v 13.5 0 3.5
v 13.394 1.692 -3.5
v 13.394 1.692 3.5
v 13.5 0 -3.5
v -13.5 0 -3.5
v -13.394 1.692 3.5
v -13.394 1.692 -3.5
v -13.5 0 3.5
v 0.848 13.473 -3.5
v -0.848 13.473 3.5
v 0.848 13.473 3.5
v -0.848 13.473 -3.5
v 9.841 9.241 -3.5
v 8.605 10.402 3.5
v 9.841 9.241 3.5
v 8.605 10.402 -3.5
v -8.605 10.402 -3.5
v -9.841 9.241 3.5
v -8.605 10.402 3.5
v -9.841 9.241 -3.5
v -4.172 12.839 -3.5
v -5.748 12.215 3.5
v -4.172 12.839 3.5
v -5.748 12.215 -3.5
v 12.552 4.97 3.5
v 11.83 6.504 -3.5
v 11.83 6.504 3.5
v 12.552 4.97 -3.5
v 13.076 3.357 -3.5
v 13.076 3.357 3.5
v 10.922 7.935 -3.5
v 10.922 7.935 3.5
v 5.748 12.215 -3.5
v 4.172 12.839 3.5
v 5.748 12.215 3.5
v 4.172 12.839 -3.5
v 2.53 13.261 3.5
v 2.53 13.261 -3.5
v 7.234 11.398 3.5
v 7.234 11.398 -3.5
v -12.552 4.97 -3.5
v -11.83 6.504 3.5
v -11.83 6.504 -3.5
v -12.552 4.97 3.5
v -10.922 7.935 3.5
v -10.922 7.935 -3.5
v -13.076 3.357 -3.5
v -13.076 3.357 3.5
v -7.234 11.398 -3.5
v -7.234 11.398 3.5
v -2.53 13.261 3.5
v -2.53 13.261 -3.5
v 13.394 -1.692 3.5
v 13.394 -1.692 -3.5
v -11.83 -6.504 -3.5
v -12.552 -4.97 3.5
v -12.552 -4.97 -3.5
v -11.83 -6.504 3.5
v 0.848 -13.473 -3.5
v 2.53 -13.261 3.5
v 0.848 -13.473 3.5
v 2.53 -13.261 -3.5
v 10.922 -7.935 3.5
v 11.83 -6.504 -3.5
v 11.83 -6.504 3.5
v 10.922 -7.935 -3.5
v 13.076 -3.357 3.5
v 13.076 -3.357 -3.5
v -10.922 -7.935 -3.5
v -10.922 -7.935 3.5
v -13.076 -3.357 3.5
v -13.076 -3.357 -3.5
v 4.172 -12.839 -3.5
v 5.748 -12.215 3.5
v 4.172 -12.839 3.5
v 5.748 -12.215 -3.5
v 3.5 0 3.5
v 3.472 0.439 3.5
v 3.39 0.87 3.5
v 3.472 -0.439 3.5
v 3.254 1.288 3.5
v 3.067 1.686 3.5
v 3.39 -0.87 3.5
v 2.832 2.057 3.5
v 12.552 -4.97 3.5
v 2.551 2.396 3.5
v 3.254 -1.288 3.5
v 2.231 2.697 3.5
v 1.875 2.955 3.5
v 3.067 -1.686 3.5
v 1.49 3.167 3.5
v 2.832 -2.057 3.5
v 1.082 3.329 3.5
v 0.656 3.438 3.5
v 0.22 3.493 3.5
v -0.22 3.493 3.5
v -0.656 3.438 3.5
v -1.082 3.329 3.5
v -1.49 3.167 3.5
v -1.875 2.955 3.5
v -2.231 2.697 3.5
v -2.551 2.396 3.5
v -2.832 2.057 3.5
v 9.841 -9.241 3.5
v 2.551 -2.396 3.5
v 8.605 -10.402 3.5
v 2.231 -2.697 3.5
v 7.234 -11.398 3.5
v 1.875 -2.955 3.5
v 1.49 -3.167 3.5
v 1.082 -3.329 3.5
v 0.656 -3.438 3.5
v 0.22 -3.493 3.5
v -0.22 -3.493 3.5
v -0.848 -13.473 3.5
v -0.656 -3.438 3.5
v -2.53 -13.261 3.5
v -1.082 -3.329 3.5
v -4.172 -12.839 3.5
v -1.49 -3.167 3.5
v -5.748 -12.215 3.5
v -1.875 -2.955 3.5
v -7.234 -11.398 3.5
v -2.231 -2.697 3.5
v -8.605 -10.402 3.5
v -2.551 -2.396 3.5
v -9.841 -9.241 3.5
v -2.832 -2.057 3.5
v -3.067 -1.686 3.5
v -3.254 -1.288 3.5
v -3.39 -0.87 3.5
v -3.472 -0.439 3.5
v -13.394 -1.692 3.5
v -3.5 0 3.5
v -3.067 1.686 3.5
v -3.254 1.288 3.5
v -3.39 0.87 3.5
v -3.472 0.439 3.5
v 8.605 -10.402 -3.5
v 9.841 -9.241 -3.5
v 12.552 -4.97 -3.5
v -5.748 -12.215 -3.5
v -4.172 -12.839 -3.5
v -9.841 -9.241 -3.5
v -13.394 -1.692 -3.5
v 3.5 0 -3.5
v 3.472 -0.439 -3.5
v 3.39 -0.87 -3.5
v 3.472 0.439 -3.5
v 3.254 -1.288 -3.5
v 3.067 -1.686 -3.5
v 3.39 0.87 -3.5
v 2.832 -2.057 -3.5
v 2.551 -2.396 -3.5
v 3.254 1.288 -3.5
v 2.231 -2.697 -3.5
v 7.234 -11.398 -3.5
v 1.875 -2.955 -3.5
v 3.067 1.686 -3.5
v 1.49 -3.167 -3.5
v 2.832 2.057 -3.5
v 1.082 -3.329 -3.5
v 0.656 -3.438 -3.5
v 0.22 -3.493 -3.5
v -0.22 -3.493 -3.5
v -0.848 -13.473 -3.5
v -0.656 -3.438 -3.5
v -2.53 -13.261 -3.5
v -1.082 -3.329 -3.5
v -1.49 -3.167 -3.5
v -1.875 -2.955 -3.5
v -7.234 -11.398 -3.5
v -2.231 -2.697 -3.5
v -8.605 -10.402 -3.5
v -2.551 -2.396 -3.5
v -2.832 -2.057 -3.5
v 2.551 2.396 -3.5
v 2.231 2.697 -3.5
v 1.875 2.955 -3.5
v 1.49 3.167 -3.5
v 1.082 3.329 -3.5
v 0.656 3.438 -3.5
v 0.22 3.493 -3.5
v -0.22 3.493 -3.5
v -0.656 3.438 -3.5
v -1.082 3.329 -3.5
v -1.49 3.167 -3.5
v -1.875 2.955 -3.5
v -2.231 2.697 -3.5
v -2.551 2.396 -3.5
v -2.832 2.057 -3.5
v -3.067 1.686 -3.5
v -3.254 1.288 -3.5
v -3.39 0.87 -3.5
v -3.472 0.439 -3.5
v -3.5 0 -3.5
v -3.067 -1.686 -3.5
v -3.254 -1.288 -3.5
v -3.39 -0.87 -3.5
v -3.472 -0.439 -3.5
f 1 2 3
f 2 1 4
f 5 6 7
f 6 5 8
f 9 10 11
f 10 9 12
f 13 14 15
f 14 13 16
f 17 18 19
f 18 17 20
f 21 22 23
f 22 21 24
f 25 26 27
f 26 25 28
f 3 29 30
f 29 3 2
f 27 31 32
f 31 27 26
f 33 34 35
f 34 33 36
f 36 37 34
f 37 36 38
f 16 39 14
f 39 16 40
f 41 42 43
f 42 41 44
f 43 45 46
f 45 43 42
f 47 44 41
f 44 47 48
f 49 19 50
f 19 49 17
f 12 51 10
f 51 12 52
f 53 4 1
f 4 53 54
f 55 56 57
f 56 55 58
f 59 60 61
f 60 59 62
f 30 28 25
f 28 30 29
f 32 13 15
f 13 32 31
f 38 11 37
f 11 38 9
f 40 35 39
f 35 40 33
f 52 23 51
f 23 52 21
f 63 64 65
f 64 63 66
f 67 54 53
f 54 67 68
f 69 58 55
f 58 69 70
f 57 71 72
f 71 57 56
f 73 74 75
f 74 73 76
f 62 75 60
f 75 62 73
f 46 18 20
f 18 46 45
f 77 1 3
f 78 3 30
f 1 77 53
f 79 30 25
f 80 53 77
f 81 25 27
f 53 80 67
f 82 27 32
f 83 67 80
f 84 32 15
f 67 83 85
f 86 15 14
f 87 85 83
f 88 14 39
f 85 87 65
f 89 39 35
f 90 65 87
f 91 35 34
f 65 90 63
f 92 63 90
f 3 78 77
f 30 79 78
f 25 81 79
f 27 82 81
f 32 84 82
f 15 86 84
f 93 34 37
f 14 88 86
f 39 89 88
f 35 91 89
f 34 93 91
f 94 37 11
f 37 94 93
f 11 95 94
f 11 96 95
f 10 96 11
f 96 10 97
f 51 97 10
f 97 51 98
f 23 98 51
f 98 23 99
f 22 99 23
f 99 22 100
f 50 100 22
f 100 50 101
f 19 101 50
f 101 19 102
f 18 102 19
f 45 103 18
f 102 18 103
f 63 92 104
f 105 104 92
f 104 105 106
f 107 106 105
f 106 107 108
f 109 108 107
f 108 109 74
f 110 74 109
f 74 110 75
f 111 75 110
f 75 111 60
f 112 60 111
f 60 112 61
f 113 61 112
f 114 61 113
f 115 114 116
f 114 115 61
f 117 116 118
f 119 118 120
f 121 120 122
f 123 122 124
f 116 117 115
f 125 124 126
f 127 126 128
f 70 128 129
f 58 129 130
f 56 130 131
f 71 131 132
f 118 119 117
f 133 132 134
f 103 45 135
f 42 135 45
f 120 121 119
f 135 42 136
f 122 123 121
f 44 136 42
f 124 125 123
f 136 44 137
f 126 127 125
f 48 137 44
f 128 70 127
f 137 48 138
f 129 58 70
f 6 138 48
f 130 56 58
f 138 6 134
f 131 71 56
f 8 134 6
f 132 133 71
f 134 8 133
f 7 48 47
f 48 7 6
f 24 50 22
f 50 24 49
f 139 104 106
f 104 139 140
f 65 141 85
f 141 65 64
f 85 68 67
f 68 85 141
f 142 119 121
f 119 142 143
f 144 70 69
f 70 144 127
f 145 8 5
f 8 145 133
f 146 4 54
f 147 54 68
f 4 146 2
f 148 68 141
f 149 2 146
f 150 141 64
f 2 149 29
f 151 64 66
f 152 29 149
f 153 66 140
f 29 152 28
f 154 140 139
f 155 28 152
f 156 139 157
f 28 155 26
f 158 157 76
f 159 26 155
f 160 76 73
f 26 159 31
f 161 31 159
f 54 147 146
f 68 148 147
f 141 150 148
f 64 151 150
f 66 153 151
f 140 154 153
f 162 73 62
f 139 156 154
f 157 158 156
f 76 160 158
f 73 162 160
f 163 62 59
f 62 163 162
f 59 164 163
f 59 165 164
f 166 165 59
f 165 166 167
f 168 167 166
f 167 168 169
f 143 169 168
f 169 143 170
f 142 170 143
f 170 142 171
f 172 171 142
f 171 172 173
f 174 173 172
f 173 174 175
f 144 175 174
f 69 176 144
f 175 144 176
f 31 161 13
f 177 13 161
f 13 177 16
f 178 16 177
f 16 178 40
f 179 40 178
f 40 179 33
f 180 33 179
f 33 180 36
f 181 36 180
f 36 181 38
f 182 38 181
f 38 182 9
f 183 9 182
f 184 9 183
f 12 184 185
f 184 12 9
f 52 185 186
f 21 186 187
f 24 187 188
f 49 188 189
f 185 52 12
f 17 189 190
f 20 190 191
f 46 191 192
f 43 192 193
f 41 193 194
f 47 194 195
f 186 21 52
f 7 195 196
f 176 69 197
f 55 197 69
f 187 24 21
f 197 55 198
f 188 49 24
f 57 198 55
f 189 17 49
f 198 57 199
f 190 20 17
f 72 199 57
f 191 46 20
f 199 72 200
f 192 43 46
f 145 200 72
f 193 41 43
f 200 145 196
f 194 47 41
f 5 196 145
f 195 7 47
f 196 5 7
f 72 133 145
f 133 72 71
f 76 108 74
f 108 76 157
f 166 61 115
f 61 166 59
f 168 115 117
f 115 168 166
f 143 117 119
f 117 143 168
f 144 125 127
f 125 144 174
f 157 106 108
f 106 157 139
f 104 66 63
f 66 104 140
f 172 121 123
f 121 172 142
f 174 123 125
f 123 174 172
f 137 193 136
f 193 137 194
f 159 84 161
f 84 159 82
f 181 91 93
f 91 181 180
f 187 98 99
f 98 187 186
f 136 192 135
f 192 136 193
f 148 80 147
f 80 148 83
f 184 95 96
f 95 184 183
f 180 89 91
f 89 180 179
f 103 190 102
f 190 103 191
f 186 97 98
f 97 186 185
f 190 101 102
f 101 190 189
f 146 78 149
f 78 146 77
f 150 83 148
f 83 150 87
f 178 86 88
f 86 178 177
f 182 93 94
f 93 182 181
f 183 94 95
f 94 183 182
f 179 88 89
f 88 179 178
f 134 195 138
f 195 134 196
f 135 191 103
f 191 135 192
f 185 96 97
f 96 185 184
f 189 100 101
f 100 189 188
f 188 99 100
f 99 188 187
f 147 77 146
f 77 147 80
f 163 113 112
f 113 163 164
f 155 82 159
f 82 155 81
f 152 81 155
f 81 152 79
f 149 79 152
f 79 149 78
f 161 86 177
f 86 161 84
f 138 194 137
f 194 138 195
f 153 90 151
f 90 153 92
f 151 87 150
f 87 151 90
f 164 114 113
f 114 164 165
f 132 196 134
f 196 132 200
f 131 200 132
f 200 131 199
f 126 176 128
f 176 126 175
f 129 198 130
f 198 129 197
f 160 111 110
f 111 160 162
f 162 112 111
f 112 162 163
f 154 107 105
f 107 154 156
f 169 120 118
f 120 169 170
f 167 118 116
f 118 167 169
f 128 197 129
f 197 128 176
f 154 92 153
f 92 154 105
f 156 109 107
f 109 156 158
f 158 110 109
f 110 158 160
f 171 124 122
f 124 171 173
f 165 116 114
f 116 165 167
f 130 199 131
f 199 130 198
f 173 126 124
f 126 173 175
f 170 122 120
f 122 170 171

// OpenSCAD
$fn = 50;


difference() {
	union() {
		translate(v = [0, 0, -3.5000000000]) {
			cylinder(h = 7, r = 13.5000000000);
		}
	}
	union() {
		translate(v = [0, 0, -100.0000000000]) {
			cylinder(h = 200, r = 3.5000000000);
		}
	}
}
